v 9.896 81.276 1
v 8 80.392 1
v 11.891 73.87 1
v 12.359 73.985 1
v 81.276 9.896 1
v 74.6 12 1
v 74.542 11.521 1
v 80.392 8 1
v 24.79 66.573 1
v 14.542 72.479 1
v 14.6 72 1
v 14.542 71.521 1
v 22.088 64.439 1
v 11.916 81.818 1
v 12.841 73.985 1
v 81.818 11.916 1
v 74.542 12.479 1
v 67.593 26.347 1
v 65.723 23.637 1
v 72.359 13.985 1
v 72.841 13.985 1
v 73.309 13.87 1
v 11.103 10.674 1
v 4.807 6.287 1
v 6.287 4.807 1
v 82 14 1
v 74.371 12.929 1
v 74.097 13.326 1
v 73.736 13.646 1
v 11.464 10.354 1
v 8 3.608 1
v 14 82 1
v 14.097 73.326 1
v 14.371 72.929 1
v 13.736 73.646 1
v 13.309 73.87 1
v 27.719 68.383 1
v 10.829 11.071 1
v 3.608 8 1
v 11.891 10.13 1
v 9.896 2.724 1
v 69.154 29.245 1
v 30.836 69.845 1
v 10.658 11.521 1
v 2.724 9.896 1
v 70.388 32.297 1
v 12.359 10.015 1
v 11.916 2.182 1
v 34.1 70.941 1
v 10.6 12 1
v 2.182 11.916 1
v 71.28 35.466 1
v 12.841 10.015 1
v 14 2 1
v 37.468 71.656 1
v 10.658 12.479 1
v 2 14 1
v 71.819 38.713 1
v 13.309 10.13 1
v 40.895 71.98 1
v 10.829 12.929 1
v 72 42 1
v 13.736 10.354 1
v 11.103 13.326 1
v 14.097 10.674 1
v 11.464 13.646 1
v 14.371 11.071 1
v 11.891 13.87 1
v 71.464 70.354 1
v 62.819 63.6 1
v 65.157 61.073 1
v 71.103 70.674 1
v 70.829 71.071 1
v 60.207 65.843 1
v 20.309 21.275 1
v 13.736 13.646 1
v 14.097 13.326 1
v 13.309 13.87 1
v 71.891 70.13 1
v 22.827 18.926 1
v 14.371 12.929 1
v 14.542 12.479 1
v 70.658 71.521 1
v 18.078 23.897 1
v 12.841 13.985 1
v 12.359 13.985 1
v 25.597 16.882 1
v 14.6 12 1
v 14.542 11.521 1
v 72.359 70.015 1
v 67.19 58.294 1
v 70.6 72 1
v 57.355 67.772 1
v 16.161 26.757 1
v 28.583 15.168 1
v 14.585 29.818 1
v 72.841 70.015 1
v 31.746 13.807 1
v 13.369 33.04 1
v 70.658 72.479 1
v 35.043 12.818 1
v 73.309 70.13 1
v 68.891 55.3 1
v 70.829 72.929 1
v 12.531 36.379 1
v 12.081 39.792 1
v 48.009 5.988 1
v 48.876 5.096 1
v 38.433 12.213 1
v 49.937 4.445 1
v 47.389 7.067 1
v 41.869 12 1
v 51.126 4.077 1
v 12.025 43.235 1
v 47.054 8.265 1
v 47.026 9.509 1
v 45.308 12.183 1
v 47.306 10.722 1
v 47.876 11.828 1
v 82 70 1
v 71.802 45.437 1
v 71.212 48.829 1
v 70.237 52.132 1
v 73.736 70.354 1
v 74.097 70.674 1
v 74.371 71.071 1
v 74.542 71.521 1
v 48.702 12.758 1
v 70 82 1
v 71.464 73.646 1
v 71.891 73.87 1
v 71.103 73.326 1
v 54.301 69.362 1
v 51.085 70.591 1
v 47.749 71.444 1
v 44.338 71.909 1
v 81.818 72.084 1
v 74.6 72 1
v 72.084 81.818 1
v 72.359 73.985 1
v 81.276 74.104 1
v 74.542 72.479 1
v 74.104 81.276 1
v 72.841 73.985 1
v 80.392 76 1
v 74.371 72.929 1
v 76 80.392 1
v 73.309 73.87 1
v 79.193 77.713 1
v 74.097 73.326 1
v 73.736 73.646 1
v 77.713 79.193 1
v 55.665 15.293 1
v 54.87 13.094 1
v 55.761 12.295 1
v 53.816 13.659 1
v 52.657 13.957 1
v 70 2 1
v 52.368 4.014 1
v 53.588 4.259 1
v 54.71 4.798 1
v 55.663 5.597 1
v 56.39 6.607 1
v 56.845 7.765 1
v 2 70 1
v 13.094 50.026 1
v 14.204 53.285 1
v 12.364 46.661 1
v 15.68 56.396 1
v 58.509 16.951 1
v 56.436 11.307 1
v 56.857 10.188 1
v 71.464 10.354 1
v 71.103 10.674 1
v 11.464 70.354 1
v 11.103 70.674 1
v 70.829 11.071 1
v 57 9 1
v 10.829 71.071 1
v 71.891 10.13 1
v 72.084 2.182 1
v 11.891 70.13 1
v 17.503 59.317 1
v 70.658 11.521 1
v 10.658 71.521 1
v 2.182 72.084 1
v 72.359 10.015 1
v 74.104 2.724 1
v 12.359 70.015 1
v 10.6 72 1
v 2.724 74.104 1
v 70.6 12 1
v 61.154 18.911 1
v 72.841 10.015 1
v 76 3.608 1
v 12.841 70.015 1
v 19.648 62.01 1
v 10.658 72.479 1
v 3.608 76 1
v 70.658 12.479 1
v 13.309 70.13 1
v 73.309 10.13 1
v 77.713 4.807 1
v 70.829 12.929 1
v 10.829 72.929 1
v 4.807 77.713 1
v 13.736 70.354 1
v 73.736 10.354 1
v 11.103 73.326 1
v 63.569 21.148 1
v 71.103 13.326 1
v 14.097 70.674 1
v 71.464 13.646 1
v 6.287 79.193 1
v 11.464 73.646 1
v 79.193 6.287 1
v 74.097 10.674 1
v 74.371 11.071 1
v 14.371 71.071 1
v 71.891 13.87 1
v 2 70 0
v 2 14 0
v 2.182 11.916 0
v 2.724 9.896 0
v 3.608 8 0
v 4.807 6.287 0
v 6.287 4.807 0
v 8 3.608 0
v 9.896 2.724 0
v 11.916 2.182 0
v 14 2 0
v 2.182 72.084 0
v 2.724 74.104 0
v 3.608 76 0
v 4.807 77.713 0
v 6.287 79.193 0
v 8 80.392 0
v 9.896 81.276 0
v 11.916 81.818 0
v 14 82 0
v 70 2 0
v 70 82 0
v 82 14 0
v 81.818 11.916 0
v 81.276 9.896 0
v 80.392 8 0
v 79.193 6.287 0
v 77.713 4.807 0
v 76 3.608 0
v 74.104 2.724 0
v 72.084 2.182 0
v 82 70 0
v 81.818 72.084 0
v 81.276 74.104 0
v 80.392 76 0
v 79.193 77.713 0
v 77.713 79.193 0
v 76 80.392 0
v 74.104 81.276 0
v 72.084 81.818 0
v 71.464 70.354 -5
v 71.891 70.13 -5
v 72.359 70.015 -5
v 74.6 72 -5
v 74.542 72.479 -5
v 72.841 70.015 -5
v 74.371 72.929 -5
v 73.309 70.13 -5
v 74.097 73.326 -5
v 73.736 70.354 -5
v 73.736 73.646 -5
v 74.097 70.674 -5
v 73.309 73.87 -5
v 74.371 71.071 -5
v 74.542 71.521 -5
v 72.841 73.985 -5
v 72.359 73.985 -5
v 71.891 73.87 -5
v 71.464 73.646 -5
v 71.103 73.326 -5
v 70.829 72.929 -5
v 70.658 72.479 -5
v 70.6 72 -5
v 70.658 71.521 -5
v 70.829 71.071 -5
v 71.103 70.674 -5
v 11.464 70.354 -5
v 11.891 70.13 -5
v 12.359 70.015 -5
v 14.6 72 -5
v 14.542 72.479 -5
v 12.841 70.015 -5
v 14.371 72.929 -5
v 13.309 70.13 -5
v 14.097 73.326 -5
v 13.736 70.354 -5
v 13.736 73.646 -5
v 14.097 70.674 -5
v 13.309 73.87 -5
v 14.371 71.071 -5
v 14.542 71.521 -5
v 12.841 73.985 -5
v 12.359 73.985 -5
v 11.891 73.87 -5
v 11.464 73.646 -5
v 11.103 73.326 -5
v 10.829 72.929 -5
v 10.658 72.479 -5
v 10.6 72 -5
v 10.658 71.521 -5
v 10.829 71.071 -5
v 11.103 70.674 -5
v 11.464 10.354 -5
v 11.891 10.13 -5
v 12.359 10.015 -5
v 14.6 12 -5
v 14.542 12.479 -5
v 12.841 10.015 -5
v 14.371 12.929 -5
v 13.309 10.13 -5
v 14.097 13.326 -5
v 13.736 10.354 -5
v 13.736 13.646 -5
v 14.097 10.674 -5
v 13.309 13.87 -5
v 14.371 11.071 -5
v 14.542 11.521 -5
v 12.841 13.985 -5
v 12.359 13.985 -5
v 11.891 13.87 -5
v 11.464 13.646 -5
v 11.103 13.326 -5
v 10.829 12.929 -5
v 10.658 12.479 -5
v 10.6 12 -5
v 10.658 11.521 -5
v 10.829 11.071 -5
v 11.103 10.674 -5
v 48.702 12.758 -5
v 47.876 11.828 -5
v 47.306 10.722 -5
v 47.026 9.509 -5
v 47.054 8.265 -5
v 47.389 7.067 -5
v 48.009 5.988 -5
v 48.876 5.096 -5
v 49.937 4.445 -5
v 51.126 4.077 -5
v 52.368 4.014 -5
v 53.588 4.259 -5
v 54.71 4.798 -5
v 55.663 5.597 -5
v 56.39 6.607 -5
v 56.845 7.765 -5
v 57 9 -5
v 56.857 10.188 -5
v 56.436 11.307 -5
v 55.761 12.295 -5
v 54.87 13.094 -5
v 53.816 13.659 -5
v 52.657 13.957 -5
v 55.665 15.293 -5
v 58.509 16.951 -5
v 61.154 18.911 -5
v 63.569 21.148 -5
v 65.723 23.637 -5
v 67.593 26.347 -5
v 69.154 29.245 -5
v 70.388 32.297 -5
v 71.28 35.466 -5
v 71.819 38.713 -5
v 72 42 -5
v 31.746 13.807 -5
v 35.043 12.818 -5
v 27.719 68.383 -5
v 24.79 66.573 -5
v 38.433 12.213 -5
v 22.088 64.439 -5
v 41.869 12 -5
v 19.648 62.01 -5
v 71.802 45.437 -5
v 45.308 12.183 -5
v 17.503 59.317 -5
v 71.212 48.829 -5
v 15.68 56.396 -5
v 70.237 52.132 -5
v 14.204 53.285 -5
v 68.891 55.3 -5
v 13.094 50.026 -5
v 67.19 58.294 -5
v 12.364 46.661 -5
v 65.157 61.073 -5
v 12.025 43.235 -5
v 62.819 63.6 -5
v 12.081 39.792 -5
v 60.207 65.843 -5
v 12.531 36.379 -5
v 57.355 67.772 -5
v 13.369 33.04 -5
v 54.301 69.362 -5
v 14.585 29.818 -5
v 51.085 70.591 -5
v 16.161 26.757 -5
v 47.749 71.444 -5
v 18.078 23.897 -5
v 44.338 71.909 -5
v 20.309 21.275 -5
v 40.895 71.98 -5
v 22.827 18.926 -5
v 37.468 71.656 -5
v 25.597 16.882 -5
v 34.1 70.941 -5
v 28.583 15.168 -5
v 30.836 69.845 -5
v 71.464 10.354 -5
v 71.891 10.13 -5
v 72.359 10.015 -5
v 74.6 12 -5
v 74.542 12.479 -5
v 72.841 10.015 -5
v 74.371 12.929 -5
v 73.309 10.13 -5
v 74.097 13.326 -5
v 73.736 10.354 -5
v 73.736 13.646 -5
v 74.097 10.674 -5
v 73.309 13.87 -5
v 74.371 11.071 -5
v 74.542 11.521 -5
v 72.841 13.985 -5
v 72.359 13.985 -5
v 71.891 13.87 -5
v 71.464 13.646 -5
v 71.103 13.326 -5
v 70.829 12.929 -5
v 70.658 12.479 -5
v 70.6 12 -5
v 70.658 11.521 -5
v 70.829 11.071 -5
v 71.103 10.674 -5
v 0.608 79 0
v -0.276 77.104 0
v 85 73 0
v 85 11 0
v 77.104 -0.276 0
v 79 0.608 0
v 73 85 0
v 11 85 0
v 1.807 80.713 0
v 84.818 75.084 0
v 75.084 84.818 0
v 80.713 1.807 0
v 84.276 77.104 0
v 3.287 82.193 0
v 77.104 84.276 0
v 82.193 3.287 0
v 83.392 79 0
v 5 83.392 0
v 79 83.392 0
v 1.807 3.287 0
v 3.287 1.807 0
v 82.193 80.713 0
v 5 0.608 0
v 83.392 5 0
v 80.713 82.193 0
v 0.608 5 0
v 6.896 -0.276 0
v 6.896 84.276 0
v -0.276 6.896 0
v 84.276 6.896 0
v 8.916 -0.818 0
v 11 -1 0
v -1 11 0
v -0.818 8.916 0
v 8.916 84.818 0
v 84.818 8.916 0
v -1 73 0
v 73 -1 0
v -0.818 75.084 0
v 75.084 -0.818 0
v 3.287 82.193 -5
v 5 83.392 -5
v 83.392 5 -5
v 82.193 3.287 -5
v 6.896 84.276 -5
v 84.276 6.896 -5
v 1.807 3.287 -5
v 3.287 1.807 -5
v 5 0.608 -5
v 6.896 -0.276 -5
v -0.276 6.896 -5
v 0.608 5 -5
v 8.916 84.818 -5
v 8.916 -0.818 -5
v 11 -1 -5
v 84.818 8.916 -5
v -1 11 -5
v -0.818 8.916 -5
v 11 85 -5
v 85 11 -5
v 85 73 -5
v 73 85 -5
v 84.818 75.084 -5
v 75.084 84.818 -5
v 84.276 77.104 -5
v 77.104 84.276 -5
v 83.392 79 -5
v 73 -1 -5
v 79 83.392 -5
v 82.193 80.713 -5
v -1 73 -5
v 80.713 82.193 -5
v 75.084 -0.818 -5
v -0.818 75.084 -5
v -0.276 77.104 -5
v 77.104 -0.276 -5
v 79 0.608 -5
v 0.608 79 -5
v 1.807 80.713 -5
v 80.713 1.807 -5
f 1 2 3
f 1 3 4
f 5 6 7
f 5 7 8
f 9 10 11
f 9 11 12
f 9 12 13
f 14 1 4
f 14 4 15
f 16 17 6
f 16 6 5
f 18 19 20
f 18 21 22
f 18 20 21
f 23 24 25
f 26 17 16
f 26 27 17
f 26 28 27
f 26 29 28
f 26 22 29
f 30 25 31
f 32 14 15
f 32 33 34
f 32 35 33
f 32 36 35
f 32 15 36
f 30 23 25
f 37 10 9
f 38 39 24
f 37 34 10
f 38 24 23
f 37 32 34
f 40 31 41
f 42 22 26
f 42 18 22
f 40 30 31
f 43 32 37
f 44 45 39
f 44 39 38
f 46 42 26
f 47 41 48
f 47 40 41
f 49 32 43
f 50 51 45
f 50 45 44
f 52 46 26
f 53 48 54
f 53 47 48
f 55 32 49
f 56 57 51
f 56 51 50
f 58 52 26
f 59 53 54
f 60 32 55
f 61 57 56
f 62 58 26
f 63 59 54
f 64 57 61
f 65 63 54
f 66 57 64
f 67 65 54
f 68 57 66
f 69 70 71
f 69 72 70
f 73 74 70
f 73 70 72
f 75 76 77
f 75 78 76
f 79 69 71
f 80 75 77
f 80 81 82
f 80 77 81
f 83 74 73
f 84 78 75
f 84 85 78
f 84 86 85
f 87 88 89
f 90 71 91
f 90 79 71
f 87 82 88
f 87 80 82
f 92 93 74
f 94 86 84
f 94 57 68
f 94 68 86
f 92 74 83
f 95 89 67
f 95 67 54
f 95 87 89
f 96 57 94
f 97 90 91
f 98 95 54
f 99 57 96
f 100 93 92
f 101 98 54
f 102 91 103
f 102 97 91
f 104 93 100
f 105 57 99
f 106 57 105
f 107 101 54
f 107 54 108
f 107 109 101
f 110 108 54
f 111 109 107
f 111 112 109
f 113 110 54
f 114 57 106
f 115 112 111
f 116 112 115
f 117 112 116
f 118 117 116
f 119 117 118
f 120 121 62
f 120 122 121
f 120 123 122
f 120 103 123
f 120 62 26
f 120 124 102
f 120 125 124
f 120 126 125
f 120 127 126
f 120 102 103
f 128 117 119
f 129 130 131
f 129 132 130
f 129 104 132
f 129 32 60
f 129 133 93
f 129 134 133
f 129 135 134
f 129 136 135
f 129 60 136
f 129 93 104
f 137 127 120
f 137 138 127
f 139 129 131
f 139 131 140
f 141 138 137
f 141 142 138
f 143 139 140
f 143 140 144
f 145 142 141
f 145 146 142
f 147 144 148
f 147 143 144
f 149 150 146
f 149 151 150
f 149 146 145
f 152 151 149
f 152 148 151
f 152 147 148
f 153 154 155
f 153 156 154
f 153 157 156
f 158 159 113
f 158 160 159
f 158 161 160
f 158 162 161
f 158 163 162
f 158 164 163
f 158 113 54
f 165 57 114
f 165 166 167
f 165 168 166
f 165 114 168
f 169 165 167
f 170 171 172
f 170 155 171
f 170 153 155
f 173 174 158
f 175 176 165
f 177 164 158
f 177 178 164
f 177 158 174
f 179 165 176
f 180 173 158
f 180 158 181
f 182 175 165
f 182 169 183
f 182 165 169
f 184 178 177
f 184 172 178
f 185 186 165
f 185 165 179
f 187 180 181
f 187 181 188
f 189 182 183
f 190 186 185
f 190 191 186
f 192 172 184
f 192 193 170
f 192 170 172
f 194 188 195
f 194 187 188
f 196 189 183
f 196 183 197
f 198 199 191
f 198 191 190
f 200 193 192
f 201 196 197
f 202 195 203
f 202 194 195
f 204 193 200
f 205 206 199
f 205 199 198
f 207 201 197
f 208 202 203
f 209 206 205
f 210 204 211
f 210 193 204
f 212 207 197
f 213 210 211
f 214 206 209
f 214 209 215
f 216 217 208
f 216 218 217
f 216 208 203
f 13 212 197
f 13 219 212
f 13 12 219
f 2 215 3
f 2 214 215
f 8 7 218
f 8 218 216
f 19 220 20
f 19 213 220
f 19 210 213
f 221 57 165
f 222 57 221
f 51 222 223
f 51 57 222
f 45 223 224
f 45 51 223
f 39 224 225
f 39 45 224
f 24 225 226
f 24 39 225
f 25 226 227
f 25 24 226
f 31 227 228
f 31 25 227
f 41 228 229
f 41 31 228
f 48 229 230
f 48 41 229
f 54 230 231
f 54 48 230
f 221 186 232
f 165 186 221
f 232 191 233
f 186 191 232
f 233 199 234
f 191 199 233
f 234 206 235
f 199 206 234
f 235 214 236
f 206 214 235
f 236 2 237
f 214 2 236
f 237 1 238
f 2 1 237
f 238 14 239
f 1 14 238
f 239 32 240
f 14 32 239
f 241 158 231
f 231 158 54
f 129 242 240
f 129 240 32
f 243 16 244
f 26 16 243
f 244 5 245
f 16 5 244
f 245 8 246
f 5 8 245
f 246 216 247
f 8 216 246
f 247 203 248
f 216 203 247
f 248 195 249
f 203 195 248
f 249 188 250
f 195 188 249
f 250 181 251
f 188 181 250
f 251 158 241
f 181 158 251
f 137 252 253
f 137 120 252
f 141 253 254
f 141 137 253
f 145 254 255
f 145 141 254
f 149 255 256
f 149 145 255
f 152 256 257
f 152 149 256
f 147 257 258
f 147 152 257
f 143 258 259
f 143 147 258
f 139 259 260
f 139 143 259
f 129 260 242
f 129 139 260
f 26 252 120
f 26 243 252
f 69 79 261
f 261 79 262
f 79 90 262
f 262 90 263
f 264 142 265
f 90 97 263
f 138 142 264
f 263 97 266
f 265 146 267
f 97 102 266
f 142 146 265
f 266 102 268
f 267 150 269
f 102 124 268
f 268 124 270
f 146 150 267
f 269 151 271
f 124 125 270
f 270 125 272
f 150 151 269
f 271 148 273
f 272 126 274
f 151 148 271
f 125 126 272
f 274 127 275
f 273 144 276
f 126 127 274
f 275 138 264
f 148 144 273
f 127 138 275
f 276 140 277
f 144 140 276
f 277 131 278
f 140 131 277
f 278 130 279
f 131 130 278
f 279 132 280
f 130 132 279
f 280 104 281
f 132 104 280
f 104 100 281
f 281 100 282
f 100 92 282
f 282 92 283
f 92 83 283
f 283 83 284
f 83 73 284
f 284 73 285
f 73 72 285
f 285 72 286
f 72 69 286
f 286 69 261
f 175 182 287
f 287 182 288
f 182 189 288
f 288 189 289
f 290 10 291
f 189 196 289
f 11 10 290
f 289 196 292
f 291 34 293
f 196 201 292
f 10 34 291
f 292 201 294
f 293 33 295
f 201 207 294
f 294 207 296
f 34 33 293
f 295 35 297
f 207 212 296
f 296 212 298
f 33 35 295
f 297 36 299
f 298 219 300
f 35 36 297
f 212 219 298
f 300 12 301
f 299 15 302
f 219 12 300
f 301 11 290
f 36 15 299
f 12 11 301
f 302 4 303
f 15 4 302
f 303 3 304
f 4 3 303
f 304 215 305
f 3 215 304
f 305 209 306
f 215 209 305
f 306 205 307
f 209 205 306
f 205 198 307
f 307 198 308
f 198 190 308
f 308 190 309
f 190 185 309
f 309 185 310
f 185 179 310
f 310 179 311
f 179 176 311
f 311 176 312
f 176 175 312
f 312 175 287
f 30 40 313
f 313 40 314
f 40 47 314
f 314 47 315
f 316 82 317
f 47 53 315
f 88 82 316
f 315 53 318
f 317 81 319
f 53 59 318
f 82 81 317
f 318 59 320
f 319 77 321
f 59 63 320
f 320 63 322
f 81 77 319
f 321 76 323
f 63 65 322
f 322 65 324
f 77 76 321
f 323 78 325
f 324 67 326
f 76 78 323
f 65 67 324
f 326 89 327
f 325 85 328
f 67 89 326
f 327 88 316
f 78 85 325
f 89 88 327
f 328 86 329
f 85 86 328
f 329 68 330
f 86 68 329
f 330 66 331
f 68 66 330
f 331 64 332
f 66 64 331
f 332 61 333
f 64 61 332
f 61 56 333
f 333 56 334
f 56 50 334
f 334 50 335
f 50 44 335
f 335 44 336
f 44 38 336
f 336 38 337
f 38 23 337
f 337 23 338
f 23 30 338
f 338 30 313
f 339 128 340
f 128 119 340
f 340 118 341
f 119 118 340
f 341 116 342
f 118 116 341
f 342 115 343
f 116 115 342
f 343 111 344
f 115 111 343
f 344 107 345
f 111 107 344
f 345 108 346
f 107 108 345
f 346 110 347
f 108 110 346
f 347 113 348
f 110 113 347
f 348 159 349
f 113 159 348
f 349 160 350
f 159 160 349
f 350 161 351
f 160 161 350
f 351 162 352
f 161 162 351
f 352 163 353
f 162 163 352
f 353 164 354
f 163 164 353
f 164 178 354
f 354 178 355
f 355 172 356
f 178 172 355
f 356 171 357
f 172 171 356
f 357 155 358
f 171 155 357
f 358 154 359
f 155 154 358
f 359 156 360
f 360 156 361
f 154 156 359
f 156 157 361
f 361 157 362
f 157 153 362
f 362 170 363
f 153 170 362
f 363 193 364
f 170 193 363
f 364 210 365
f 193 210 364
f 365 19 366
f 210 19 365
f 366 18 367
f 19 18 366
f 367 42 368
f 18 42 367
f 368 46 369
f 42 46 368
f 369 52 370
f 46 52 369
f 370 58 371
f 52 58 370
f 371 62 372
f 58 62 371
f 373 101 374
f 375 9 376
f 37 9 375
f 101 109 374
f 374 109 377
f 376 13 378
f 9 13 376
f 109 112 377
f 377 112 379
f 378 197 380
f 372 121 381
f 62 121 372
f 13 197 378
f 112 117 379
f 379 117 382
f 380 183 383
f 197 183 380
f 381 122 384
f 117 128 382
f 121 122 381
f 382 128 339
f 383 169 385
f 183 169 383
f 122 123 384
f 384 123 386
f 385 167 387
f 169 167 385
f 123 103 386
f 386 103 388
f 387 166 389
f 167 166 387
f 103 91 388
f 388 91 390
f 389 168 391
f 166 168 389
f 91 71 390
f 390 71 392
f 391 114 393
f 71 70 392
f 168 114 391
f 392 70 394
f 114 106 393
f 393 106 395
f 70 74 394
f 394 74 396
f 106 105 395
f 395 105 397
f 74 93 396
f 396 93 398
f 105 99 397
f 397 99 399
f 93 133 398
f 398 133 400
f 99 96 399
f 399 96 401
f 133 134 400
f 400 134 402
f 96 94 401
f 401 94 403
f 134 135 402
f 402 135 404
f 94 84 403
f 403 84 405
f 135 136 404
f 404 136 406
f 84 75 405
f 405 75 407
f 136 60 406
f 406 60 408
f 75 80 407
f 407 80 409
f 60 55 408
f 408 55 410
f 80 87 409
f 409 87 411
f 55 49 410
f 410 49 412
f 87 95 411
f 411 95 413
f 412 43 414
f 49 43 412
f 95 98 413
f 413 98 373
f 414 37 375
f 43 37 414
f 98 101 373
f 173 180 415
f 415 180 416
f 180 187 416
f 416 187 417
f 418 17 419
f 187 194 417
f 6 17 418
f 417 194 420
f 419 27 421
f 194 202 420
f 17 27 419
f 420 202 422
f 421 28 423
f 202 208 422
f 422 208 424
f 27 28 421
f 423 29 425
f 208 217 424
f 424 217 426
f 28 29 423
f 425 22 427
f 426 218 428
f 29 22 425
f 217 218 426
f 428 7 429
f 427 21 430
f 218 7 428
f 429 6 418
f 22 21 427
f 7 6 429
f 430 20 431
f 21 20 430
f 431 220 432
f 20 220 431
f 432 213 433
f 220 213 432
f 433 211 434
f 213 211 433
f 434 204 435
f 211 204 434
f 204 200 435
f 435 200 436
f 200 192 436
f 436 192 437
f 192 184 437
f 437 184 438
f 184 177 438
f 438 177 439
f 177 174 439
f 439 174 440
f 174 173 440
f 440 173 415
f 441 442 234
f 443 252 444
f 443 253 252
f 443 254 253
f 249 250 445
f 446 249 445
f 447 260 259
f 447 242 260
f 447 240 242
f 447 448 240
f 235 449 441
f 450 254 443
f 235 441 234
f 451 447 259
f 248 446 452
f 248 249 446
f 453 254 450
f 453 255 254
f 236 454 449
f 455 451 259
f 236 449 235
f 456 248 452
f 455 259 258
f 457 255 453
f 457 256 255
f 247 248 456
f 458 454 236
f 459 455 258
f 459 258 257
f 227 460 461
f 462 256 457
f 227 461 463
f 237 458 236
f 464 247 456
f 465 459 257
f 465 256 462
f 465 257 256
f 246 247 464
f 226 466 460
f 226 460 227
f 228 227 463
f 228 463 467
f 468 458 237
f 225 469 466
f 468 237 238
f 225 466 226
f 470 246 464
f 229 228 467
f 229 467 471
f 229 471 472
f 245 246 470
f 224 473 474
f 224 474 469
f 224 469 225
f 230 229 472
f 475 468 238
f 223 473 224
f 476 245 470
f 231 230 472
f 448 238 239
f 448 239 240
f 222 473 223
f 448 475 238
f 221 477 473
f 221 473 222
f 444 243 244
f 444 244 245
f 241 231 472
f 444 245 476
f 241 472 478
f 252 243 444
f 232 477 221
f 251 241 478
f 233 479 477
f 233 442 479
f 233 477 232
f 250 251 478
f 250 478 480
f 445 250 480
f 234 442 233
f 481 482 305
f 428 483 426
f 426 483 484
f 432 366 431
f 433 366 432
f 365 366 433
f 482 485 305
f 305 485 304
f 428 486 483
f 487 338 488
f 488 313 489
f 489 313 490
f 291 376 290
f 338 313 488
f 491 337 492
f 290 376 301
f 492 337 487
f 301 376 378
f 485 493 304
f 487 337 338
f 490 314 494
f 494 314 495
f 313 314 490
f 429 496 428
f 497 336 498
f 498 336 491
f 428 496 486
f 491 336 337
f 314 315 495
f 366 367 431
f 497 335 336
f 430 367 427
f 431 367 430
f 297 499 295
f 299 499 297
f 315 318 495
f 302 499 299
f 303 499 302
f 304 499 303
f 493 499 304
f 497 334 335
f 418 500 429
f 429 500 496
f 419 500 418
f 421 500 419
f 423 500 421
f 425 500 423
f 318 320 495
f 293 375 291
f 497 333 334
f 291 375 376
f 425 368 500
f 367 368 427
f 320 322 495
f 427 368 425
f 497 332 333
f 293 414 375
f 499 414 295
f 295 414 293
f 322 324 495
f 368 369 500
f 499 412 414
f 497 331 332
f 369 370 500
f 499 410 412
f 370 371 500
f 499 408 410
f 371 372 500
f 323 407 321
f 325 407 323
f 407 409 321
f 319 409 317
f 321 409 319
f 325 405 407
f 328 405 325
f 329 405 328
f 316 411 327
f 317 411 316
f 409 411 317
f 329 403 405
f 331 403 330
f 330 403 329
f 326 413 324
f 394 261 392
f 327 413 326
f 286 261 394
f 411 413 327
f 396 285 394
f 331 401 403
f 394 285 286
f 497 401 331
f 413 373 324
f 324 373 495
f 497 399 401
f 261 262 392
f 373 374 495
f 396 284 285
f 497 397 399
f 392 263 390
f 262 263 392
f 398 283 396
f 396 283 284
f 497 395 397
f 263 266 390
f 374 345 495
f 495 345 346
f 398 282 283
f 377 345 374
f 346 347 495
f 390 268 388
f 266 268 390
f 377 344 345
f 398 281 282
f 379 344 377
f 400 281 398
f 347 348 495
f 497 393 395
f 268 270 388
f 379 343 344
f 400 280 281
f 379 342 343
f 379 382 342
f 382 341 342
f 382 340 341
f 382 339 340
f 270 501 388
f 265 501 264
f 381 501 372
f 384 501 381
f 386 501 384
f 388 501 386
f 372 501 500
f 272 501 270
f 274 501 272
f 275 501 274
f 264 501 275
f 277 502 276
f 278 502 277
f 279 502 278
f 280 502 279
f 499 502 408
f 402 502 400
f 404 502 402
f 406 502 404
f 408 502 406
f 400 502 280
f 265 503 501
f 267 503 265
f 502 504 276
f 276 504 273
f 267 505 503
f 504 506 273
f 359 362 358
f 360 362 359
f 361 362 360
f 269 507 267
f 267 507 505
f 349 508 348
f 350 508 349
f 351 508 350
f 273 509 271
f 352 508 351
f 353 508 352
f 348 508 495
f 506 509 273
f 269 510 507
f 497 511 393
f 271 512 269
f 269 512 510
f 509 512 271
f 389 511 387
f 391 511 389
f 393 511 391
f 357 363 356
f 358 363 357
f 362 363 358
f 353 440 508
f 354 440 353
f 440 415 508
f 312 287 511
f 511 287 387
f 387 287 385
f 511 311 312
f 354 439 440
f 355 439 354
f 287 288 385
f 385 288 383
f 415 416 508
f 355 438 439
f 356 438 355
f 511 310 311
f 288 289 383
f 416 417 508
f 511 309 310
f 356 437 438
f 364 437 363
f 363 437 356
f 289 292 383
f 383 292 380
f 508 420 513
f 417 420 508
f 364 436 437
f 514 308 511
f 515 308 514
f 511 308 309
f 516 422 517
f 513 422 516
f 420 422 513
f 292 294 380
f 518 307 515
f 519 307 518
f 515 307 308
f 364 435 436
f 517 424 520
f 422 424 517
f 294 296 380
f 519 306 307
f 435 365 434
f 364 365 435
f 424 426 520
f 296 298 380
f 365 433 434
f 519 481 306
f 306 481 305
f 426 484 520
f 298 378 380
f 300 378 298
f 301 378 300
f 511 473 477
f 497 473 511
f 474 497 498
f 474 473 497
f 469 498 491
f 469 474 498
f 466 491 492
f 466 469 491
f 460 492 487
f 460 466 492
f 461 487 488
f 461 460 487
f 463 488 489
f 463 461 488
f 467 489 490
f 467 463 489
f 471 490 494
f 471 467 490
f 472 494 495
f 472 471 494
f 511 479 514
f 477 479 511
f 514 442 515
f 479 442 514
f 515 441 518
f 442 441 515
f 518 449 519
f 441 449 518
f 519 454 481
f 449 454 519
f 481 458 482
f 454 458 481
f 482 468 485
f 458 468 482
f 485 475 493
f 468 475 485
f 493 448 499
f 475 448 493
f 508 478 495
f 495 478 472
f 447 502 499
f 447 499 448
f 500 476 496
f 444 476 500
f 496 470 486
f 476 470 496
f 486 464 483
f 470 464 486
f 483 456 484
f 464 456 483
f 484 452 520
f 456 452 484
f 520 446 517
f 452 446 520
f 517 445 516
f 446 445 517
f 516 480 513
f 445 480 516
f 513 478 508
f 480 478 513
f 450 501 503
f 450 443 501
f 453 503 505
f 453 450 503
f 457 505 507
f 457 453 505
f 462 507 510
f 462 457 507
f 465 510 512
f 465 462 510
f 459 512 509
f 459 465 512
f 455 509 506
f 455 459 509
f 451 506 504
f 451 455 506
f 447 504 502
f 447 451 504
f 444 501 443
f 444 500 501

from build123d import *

# Parameters (mm, degrees)
CYLINDER009_R     = 5
CYLINDER009_DEPTH = 10
CYLINDER008_R     = 30
CYLINDER008_DEPTH = 10
CYLINDER012_R     = 2
CYLINDER012_DEPTH = 63
CYLINDER013_R     = 2
CYLINDER013_DEPTH = 63
CYLINDER014_R     = 2
CYLINDER014_DEPTH = 63
CYLINDER011_R     = 2
CYLINDER011_DEPTH = 63
BOX004_W          = 86
BOX004_H          = 86
BOX004_DEPTH      = 5
FILLET003_R       = 12
BOX003_W          = 80
BOX003_H          = 80
BOX003_DEPTH      = 1
FILLET002_R       = 12


with BuildPart() as led:
    # Cylinder009 → Cylinder009 (new body)
    with BuildSketch(Plane(origin=(52, 9, -6), x_dir=(1, 0, 0), z_dir=(0, 0, 1))):
        Circle(CYLINDER009_R)
    extrude(amount=CYLINDER009_DEPTH)


with BuildPart() as speaker:
    # Cylinder008 → Cylinder008 (new body)
    with BuildSketch(Plane(origin=(42, 42, -6), x_dir=(1, 0, 0), z_dir=(0, 0, 1))):
        Circle(CYLINDER008_R)
    extrude(amount=CYLINDER008_DEPTH)


with BuildPart() as rod2:
    # Cylinder012 → Cylinder012 (new body)
    with BuildSketch(Plane(origin=(72.6, 72, -9), x_dir=(1, 0, 0), z_dir=(0, 0, 1))):
        Circle(CYLINDER012_R)
    extrude(amount=CYLINDER012_DEPTH)


with BuildPart() as rod3:
    # Cylinder013 → Cylinder013 (new body)
    with BuildSketch(Plane(origin=(12.6, 12, -9), x_dir=(1, 0, 0), z_dir=(0, 0, 1))):
        Circle(CYLINDER013_R)
    extrude(amount=CYLINDER013_DEPTH)


with BuildPart() as rod4:
    # Cylinder014 → Cylinder014 (new body)
    with BuildSketch(Plane(origin=(12.6, 72, -9), x_dir=(1, 0, 0), z_dir=(0, 0, 1))):
        Circle(CYLINDER014_R)
    extrude(amount=CYLINDER014_DEPTH)


with BuildPart() as holes:
    # Cylinder011 → Cylinder011 (new body)
    with BuildSketch(Plane(origin=(72.6, 12, -9), x_dir=(1, 0, 0), z_dir=(0, 0, 1))):
        Circle(CYLINDER011_R)
    extrude(amount=CYLINDER011_DEPTH)

    # Fusion003: union LED, Speaker, rod2, rod3, rod4
    add(led.part)
    add(speaker.part)
    add(rod2.part)
    add(rod3.part)
    add(rod4.part)


with BuildPart() as fillet003:
    # Box004 → Box004 (new body)
    with BuildSketch(Plane.XY):
        with Locations((43, 43)):
            Rectangle(BOX004_W, BOX004_H)
    extrude(amount=BOX004_DEPTH)

    # Fillet003
    fillet003_edges = [fillet003.edges().sort_by_distance(p)[0] for p in [
        (0, 0, 2.5),
        (0, 86, 2.5),
        (86, 0, 2.5),
        (86, 86, 2.5),
    ]]
    fillet(fillet003_edges, radius=FILLET003_R)


with BuildPart() as fillet003_1:
    # Fillet003 placement: moved
    add(fillet003.part.moved(Location((-3, -3, -5))))


with BuildPart() as frontspeaker:
    # Box003 → Box003 (new body)
    with BuildSketch(Plane.XY):
        with Locations((40, 40)):
            Rectangle(BOX003_W, BOX003_H)
    extrude(amount=BOX003_DEPTH)

    # Fillet002
    fillet002_edges = [frontspeaker.edges().sort_by_distance(p)[0] for p in [
        (0, 0, 0.5),
        (0, 80, 0.5),
        (80, 0, 0.5),
        (80, 80, 0.5),
    ]]
    fillet(fillet002_edges, radius=FILLET002_R)

    # Fusion001: union Fillet003
    add(fillet003_1.part)


with BuildPart() as frontspeaker_1:
    # Fusion001 placement: moved
    add(frontspeaker.part.moved(Location((2, 2, 0))))

    # Cut005: cut holes
    add(holes.part, mode=Mode.SUBTRACT)


solid = frontspeaker_1.part
